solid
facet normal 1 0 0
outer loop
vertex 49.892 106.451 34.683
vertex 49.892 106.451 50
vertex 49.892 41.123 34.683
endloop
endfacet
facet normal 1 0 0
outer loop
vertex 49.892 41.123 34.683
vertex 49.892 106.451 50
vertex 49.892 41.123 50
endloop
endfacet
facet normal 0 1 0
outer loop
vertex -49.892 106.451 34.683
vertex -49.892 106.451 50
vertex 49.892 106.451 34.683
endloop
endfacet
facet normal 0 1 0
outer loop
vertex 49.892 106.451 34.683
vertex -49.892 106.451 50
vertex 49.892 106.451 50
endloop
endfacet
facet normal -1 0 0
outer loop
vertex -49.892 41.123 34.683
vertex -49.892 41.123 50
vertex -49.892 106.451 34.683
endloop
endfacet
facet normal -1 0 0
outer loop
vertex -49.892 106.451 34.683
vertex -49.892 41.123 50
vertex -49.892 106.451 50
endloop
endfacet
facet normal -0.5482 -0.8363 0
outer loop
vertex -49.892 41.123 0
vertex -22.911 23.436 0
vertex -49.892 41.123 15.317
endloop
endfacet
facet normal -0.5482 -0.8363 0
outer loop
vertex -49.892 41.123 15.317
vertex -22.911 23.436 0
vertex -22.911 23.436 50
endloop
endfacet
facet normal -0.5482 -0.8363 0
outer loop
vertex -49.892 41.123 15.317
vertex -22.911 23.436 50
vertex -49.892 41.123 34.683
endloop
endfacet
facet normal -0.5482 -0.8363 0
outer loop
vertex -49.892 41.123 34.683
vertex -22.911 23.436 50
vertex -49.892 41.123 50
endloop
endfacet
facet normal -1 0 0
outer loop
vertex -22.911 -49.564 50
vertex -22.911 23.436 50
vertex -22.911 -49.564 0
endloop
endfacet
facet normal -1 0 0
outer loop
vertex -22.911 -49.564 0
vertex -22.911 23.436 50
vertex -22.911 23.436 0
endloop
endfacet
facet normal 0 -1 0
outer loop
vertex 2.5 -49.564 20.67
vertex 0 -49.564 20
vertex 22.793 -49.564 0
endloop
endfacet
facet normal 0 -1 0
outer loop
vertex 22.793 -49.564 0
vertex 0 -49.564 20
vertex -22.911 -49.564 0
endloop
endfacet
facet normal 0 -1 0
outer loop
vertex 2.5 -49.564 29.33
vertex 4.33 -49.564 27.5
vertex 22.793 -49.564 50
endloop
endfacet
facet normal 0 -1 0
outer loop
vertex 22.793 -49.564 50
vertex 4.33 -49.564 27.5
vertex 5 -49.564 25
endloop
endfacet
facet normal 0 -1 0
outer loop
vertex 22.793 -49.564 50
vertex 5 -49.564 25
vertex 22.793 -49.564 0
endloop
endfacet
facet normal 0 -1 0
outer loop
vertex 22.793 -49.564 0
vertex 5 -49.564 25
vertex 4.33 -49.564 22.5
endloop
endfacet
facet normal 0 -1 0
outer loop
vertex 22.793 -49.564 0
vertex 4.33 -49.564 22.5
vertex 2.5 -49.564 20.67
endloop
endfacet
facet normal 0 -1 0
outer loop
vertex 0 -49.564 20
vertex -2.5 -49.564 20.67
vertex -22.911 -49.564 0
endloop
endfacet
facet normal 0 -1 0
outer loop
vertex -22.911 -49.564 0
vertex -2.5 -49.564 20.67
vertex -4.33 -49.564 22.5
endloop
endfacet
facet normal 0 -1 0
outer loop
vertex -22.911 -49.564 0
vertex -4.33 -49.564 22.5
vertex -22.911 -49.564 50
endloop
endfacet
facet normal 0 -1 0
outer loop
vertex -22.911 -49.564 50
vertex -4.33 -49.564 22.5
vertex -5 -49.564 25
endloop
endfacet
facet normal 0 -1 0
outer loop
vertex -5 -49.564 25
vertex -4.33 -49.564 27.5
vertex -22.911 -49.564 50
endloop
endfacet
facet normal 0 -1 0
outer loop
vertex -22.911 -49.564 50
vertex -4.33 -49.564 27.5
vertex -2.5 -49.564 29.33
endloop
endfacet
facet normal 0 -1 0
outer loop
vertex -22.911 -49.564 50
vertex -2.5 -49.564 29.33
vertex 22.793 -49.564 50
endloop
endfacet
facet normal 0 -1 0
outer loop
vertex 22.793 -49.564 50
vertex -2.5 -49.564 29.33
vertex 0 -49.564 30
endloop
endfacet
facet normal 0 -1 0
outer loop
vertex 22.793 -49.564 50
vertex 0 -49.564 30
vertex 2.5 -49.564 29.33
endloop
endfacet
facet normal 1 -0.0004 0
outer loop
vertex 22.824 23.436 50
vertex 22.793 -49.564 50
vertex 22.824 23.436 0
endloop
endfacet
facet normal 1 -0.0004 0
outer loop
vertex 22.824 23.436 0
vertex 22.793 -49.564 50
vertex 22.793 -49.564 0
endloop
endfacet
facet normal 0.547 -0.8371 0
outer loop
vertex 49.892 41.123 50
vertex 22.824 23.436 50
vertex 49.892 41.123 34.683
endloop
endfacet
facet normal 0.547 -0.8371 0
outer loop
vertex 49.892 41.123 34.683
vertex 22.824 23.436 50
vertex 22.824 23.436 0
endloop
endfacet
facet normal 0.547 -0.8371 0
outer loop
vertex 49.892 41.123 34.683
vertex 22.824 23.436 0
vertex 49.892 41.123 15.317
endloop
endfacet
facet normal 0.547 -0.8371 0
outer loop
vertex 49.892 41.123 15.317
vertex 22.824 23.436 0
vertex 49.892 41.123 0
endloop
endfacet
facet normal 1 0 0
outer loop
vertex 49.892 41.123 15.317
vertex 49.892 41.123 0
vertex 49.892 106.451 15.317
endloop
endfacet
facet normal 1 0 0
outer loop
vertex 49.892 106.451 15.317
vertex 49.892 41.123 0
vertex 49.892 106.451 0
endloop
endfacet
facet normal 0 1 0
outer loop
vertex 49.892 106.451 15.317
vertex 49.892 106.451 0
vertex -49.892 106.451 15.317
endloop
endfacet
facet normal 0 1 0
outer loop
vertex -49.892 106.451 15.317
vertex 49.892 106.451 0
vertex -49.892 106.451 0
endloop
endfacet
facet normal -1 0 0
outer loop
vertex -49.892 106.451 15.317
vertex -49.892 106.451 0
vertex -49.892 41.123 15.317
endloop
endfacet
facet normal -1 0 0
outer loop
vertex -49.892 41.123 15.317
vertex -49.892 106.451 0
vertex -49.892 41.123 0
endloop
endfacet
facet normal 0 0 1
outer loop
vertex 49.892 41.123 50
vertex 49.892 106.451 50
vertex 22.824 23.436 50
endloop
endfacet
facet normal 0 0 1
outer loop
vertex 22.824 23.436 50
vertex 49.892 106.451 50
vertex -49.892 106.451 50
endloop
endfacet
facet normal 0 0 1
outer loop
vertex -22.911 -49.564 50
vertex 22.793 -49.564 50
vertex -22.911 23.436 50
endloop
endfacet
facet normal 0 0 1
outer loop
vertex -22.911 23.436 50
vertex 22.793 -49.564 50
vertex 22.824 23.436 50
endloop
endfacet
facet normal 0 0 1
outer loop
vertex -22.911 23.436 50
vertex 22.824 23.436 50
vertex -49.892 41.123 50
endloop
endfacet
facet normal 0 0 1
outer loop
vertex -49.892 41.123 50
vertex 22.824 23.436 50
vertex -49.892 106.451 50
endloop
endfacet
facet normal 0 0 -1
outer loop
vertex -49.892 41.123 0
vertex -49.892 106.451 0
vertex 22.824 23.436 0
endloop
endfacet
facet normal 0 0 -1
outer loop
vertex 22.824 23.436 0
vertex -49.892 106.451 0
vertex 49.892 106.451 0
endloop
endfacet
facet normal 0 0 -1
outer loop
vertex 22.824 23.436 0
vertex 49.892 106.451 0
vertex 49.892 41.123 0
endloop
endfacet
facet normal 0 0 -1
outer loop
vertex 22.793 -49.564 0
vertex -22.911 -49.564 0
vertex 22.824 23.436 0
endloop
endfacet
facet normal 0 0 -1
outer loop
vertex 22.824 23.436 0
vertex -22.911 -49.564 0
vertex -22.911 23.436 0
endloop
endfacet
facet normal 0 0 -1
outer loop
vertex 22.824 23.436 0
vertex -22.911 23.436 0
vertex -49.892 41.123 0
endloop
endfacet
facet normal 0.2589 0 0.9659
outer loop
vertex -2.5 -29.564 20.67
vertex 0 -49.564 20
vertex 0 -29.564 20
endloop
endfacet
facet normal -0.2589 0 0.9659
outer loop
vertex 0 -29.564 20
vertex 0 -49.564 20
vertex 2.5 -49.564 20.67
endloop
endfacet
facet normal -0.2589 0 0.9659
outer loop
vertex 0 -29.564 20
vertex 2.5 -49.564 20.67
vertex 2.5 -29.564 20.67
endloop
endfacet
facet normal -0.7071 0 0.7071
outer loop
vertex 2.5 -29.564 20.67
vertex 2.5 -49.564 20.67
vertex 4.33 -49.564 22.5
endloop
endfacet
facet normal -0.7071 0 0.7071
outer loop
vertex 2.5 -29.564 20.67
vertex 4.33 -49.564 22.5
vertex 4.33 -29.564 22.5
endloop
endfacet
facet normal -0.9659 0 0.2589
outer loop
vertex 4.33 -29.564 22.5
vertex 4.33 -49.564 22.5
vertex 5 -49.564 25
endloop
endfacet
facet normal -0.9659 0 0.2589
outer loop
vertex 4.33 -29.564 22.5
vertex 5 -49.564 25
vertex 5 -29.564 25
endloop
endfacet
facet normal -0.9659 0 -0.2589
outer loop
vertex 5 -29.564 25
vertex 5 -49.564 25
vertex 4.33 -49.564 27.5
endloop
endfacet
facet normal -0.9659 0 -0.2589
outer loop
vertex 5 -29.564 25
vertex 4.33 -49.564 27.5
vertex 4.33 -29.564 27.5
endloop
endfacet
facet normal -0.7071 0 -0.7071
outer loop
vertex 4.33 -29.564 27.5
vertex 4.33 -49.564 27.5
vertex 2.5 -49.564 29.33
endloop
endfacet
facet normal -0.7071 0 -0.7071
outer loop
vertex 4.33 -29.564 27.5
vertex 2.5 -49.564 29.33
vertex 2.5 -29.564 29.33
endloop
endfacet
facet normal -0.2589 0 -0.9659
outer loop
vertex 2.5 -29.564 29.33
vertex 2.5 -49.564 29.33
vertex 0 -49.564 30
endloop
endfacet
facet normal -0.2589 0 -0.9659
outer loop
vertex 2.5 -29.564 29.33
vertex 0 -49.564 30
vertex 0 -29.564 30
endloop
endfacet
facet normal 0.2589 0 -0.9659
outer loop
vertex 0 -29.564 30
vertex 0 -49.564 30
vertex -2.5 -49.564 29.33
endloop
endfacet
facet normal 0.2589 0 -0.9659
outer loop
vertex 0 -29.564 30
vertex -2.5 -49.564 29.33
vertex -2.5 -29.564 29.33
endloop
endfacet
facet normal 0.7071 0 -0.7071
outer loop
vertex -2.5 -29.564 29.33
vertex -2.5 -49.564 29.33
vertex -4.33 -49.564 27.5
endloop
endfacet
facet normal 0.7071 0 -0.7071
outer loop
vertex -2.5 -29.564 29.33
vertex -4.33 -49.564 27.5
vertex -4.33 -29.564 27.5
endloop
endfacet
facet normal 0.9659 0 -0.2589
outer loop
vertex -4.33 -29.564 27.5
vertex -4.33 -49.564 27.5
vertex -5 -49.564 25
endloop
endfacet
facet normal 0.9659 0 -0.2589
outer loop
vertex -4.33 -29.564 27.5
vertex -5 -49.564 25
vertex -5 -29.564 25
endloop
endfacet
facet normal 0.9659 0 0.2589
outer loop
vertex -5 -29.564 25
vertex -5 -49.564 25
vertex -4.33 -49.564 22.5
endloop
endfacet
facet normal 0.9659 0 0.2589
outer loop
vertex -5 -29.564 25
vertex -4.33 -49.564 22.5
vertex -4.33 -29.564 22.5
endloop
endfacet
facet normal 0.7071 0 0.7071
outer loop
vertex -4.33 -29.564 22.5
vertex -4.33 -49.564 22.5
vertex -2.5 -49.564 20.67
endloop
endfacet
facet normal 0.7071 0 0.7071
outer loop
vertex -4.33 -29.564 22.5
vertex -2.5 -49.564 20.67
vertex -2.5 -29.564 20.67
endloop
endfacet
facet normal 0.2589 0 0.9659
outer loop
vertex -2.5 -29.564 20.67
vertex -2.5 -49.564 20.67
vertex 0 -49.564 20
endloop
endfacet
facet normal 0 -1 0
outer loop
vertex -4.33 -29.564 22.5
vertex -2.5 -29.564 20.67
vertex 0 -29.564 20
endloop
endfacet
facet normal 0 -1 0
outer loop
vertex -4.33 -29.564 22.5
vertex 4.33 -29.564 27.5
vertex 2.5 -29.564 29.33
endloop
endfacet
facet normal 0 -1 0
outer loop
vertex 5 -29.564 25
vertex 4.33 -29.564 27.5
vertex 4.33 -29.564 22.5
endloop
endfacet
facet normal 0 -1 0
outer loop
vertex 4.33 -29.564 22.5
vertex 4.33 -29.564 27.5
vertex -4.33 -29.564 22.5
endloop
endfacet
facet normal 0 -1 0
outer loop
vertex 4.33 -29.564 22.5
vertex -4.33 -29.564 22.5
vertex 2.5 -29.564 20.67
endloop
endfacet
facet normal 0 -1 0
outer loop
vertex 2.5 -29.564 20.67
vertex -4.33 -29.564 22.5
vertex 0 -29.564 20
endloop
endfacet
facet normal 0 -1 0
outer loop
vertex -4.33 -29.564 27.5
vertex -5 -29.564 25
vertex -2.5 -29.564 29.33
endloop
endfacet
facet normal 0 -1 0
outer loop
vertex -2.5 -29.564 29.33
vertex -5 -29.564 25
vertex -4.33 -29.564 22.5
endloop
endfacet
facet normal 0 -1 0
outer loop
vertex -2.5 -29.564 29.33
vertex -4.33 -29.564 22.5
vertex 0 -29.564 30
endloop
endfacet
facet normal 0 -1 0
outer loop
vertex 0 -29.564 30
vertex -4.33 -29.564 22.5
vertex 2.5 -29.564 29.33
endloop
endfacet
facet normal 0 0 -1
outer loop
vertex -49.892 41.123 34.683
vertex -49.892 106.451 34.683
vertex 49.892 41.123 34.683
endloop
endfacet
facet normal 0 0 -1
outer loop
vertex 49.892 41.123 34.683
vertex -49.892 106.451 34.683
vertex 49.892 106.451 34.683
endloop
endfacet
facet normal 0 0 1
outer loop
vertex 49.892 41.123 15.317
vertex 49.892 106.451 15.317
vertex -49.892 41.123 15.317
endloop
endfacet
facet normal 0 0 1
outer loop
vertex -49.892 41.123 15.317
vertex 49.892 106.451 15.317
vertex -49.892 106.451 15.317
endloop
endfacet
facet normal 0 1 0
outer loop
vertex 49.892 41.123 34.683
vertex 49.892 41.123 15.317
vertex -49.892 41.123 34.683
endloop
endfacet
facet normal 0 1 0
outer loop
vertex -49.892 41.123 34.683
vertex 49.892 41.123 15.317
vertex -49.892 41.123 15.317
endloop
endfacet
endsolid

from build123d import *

# Parameters (mm, degrees)
EXTRUDE_1_DEPTH    = 50
SKETCH1_R          = 5
CUT_EXTRUDE1_DEPTH = 20
SKETCH2_W          = 19.36508075
SKETCH2_H          = 147.157362998
CUT_EXTRUDE2_DEPTH = 155.236083451


with BuildPart() as part:
    # Эскиз1 → Вытянуть1 (new body)
    with BuildSketch(Plane.XY):
        Polygon((49.89246994, 41.122656045), (22.824133965, 23.436424123), (22.792974544, -49.563569227), (-22.910878505, -49.563569227), (-22.910878505, 23.436424124), (-49.89246994, 41.122656045), (-49.89246994, 106.450623349), (49.89246994, 106.450623349), align=None)
    extrude(amount=EXTRUDE_1_DEPTH)

    # Sketch1 → Cut-Extrude1 (cut)
    with BuildSketch(Plane.XZ.offset(49.563569227)):
        with Locations(Location((0, 25, 0), (0, 0, 270))):
            Circle(SKETCH1_R)
    extrude(amount=-CUT_EXTRUDE1_DEPTH, mode=Mode.SUBTRACT)

    # Sketch2 → Cut-Extrude2 (cut, through all)
    with BuildSketch(Plane.ZY.offset(49.89246994)):
        with Locations((25, 114.701337544)):
            Rectangle(SKETCH2_W, SKETCH2_H)
    extrude(amount=-CUT_EXTRUDE2_DEPTH, mode=Mode.SUBTRACT)


solid = part.part
